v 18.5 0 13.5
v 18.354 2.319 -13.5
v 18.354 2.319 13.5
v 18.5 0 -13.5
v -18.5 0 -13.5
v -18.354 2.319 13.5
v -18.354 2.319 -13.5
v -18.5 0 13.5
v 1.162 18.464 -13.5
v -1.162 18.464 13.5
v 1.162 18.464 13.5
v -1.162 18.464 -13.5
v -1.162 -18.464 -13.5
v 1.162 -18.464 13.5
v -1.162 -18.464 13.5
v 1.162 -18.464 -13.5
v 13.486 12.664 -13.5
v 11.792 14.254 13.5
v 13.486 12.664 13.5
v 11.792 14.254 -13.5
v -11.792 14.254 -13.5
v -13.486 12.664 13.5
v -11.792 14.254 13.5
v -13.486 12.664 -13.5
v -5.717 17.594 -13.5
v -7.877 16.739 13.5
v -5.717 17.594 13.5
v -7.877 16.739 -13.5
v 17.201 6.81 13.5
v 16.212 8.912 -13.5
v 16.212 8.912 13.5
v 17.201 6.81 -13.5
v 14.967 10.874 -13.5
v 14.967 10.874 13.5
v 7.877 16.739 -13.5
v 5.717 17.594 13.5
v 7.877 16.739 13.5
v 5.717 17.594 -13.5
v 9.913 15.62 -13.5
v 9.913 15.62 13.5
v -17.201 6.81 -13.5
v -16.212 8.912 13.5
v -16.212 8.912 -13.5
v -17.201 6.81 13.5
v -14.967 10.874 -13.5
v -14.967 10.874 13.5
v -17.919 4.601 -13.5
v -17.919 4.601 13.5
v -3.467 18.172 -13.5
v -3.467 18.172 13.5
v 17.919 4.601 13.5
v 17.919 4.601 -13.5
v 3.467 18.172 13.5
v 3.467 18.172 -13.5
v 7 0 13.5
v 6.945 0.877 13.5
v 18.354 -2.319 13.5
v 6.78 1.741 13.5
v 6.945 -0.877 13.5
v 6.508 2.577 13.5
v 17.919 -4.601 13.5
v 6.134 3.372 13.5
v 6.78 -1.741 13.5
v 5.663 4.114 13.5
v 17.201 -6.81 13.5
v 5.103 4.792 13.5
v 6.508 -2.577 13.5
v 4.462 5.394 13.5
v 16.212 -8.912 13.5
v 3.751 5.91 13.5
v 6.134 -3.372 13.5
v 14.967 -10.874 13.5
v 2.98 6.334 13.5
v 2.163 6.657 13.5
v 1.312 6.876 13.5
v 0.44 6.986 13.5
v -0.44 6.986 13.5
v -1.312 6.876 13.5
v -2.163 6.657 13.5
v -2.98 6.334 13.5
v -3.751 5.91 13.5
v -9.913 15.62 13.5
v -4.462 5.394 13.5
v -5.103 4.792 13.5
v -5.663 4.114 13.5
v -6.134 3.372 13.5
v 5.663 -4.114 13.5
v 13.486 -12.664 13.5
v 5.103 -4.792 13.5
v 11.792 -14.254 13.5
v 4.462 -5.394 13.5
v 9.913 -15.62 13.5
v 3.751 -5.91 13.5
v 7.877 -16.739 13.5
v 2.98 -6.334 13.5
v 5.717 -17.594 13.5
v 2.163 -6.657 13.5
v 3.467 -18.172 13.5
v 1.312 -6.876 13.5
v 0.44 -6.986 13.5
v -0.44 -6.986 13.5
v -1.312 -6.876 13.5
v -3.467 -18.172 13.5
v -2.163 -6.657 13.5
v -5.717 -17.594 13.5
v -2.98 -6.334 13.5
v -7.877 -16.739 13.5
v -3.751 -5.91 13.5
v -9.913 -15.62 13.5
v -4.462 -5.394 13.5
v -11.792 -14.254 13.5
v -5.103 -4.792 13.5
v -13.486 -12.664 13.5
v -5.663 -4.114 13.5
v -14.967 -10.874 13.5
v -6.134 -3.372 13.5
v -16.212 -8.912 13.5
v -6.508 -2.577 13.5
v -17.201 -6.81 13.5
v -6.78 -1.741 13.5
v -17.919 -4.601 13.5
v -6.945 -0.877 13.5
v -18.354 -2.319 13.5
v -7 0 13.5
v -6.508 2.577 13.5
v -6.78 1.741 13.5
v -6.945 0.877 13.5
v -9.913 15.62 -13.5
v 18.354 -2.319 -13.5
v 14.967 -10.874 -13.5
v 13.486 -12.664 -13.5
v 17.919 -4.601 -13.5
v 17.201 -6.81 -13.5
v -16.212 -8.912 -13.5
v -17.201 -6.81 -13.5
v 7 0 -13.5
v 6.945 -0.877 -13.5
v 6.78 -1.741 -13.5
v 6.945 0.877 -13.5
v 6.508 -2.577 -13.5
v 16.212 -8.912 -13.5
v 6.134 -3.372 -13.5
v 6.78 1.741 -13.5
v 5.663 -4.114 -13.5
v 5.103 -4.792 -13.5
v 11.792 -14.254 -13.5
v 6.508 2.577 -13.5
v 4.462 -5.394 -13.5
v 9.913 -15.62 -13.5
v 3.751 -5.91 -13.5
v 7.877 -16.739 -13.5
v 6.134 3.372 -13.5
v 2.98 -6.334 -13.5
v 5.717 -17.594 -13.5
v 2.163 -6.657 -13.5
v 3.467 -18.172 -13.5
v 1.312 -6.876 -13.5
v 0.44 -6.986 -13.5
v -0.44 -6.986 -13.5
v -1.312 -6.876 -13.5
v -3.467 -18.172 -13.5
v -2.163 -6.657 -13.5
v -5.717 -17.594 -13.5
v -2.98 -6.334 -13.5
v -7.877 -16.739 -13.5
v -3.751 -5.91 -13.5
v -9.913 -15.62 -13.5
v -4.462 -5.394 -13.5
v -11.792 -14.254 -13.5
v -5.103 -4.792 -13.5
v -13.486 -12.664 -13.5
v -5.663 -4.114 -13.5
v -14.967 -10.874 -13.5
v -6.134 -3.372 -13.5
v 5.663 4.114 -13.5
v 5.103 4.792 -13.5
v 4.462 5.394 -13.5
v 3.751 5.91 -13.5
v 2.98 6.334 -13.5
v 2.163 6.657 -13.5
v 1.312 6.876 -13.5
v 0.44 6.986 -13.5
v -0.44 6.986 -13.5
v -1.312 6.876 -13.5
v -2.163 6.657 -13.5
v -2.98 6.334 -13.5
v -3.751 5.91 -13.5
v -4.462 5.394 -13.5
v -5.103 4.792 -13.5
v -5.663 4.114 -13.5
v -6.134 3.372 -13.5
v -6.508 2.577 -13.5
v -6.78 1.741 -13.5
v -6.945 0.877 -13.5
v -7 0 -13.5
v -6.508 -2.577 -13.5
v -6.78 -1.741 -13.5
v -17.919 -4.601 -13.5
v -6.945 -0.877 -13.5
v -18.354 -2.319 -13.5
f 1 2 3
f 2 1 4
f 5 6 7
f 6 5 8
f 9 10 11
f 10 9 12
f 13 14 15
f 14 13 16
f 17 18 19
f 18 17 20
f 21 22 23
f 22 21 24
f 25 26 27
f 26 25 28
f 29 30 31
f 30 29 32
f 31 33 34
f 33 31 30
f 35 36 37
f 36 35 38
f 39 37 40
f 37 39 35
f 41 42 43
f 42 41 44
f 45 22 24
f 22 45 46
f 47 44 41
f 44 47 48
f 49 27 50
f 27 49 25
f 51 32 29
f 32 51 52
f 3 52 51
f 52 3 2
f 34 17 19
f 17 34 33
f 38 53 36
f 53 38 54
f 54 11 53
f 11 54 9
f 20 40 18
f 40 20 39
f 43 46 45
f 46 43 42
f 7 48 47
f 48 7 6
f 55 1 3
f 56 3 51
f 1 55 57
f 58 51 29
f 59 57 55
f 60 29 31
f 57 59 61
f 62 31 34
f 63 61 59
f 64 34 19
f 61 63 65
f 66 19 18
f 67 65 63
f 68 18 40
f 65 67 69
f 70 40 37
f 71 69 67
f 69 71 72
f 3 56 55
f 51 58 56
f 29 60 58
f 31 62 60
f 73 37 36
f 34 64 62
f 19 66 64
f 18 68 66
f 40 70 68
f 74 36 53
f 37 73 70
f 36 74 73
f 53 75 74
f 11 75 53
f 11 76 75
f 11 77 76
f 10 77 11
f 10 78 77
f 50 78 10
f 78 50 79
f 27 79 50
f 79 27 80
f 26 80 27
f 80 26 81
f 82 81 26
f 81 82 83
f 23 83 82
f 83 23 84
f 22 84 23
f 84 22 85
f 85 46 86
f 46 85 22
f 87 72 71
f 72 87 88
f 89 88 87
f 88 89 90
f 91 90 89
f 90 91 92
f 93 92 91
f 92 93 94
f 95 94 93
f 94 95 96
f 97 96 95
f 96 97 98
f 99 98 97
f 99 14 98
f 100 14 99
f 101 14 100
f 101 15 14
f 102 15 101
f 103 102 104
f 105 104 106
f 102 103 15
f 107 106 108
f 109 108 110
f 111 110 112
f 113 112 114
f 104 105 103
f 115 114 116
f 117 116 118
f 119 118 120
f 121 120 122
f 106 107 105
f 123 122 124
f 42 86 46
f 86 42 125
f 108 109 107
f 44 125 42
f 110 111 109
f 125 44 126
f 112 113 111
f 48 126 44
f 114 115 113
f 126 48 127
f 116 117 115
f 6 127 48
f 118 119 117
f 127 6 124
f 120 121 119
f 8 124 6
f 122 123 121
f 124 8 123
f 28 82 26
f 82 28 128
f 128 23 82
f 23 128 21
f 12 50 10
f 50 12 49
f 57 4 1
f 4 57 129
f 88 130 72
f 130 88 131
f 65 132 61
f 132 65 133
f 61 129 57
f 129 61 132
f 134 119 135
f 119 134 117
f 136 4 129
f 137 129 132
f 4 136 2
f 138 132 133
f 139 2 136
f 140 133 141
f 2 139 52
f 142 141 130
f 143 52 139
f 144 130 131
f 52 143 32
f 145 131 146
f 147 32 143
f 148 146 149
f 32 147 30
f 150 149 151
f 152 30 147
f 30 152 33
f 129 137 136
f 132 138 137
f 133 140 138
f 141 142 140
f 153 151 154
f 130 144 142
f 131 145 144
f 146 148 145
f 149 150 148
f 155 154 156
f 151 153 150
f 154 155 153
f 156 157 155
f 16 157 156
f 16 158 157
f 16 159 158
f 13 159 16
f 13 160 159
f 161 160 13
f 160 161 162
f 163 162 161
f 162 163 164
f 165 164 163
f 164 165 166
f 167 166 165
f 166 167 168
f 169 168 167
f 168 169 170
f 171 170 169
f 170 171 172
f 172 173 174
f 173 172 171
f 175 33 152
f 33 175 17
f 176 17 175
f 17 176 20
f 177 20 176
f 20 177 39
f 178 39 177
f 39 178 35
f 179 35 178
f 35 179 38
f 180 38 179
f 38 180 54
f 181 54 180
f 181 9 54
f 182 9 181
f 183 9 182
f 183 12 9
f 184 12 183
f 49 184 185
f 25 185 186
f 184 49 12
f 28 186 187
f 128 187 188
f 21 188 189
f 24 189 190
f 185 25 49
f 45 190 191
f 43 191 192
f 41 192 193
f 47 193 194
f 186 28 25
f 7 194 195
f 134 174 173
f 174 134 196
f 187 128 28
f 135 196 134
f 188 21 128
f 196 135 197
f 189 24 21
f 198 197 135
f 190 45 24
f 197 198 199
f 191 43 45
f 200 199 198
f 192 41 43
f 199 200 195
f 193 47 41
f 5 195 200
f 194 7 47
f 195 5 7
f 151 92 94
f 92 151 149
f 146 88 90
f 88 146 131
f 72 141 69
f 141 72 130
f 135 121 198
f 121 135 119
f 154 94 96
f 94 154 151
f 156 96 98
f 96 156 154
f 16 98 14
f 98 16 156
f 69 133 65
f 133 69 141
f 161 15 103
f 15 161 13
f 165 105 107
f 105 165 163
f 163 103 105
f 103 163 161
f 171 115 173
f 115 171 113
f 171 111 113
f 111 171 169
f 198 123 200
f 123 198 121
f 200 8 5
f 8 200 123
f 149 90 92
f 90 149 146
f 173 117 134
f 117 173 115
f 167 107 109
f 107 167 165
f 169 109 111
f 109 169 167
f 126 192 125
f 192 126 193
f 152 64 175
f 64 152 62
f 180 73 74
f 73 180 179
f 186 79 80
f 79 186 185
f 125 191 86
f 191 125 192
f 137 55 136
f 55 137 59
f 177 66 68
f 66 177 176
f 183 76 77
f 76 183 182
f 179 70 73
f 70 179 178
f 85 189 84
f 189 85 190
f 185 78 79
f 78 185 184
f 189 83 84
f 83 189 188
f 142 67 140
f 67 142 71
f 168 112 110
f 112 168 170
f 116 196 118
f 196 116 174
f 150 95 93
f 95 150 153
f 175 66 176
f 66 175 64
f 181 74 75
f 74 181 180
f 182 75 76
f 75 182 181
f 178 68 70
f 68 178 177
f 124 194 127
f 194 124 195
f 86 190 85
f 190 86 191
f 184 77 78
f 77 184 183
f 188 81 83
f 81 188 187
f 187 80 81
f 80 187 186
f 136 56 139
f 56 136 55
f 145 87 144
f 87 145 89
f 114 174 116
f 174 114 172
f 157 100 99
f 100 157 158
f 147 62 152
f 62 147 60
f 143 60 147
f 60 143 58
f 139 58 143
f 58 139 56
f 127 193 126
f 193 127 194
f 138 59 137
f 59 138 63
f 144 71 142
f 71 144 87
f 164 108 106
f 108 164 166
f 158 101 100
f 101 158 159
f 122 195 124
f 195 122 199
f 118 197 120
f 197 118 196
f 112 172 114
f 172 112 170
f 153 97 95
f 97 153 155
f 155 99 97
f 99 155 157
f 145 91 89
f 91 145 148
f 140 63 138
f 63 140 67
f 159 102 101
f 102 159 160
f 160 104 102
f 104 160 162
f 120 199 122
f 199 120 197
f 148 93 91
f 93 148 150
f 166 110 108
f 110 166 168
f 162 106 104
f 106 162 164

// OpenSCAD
$fn = 50;


difference() {
	union() {
		translate(v = [0, 0, -13.5000000000]) {
			cylinder(h = 27, r = 18.5000000000);
		}
	}
	union() {
		translate(v = [0, 0, -100.0000000000]) {
			cylinder(h = 200, r = 7);
		}
	}
}
